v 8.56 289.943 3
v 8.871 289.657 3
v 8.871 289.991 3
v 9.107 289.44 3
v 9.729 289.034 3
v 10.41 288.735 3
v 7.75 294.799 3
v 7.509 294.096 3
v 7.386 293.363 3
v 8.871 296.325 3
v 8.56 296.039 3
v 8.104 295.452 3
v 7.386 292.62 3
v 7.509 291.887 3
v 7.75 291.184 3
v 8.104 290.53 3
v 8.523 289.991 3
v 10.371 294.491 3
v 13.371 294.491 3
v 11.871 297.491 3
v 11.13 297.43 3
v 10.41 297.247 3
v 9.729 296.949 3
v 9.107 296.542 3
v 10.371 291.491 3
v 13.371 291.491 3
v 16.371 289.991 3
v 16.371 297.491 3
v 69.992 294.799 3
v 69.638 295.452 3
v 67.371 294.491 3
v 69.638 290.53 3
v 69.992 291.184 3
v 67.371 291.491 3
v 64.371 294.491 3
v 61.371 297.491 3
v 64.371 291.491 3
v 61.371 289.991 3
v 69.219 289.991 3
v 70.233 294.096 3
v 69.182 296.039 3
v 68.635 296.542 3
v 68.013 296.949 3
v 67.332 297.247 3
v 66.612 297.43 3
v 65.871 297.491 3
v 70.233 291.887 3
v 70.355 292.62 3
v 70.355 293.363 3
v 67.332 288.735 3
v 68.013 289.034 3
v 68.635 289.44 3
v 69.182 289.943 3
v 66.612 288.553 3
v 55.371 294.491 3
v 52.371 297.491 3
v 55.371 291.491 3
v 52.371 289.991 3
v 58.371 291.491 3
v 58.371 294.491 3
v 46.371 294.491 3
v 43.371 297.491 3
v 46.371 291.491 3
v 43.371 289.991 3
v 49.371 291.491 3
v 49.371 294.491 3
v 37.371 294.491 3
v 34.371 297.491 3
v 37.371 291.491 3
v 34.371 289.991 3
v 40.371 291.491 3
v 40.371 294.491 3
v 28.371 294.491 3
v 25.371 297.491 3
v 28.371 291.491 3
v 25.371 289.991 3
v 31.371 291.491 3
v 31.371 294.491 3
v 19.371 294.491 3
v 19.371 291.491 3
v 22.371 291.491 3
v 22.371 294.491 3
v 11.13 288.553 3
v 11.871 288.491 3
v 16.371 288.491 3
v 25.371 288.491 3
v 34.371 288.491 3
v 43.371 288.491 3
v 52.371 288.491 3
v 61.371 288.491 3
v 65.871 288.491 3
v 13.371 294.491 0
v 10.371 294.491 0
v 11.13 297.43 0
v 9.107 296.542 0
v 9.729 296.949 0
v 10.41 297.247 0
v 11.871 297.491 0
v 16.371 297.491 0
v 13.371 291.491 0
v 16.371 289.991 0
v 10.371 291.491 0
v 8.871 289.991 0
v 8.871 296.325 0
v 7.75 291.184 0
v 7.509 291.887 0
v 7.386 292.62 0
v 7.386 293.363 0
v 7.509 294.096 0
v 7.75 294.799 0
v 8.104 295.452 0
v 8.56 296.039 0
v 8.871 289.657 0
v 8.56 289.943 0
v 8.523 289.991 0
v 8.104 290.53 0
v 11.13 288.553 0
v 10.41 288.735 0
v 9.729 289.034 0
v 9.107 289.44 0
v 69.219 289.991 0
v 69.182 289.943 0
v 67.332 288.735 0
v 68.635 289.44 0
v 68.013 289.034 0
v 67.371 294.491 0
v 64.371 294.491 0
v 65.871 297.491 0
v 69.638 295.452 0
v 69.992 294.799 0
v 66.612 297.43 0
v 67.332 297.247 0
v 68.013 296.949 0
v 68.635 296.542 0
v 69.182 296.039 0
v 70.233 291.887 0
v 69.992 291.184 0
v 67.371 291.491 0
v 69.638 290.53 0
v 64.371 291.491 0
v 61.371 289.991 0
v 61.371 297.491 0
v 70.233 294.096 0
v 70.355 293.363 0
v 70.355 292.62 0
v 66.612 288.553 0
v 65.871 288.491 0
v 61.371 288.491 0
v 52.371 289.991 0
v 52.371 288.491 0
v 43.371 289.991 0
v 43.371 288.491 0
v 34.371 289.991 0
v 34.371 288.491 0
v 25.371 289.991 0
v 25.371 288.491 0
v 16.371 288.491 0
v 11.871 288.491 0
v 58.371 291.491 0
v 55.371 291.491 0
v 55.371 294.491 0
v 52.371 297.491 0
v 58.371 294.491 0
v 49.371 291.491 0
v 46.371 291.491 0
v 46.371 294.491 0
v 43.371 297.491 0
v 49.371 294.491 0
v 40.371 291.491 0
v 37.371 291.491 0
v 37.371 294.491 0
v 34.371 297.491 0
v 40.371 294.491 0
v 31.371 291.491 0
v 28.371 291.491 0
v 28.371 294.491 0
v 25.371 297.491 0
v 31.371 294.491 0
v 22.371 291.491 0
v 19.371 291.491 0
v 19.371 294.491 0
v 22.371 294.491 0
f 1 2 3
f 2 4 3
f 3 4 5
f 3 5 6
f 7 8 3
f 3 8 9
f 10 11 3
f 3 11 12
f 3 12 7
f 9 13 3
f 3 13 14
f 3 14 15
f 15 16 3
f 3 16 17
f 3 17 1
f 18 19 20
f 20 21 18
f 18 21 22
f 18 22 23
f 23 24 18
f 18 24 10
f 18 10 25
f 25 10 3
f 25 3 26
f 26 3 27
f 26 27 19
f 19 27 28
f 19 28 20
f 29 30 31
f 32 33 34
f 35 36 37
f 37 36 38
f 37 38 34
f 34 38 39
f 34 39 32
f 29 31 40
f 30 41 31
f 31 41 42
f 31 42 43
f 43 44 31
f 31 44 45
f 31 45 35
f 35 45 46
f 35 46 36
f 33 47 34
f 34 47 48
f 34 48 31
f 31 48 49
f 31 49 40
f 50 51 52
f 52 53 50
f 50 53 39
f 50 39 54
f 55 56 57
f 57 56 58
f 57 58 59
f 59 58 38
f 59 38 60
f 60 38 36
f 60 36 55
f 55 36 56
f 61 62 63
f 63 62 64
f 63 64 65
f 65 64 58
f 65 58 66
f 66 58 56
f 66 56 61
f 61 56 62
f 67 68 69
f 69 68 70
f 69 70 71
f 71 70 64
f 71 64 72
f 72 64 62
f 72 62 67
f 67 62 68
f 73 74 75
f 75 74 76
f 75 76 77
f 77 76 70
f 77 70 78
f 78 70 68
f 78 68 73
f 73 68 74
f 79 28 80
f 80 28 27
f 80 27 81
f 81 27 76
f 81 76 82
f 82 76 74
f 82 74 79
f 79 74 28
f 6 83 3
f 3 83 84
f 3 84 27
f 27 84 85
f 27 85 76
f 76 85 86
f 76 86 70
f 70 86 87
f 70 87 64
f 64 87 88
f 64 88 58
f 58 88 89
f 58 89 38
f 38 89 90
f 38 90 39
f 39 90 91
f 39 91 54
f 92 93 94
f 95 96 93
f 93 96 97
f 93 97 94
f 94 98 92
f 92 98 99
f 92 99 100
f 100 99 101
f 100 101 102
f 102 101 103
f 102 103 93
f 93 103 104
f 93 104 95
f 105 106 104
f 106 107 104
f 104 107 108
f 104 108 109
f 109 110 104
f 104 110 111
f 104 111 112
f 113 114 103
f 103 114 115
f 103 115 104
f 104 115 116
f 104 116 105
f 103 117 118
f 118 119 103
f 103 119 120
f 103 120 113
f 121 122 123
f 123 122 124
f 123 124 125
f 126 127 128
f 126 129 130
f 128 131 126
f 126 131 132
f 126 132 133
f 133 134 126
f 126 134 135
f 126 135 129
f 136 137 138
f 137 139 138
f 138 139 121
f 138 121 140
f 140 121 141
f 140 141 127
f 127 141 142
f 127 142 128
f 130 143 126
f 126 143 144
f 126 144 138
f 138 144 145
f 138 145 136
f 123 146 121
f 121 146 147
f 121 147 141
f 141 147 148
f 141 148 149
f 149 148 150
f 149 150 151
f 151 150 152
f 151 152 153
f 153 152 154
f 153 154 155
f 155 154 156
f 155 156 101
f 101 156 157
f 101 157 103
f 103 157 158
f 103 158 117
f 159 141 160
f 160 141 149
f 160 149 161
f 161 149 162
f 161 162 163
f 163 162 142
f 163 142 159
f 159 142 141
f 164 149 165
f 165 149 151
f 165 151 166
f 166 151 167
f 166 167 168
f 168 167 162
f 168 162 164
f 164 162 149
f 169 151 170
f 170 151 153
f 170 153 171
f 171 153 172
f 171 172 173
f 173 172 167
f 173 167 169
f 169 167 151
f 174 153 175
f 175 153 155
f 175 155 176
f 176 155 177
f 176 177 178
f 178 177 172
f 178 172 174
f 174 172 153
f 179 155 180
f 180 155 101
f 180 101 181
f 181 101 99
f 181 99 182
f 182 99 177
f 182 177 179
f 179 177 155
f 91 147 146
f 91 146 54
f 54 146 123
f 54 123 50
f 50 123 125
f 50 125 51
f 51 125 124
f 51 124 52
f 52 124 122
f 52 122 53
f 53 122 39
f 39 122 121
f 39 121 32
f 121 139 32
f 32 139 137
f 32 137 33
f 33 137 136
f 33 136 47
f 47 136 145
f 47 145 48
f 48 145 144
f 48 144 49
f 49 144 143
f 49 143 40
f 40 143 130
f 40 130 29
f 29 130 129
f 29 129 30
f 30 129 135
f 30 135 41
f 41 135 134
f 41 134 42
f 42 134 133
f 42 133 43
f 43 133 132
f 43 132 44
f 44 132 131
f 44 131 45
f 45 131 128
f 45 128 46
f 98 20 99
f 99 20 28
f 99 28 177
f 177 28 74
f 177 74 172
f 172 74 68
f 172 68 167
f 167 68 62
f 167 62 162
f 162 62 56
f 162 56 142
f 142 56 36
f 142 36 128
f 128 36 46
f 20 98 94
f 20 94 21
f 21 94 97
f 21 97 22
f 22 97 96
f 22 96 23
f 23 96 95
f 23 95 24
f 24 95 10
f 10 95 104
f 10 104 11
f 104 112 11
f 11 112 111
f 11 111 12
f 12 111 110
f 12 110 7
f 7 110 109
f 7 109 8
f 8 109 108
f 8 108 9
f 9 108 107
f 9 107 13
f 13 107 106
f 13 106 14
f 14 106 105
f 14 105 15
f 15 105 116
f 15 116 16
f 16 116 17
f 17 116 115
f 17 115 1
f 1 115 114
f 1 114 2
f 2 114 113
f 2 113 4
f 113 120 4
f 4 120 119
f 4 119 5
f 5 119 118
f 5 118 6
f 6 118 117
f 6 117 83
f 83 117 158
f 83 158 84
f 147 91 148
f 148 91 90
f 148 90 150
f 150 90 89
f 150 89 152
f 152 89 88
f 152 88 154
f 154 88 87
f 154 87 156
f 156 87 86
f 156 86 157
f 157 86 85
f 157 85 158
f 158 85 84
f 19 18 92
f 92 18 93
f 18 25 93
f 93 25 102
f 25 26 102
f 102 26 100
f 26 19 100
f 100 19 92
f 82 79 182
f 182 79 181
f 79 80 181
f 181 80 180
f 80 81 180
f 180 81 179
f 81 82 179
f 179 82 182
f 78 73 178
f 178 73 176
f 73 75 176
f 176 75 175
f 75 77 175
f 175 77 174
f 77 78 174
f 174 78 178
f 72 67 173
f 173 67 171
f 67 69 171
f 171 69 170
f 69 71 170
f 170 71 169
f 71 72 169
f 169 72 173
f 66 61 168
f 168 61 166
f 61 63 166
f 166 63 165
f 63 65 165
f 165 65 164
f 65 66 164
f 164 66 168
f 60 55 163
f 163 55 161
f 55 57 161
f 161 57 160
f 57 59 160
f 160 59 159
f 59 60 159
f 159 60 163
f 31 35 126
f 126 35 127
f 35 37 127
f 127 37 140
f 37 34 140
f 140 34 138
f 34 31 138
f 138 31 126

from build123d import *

# Parameters (mm, degrees)
MODEL_W                 = 3
MODEL_H                 = 3
SALIENTE_EXTRUIR1_DEPTH = 3


with BuildPart() as part:
    # Model → Saliente-Extruir1 (new body)
    with BuildSketch(Plane.XY):
        with BuildLine():
            Line((11.870836217, 297.491184957), (65.870836217, 297.491184957))
            ThreePointArc((65.870836217, 297.491184957), (70.370836217, 292.991184957), (65.870836217, 288.491184957))
            Line((65.870836217, 288.491184957), (11.870836217, 288.491184957))
            ThreePointArc((11.870836217, 288.491184957), (7.370836217, 292.991184957), (11.870836217, 297.491184957))
        make_face()
        with Locations((11.870836217, 292.991184957)):
            Rectangle(MODEL_W, MODEL_H, mode=Mode.SUBTRACT)
        with Locations((20.870836217, 292.991184957)):
            Rectangle(MODEL_W, MODEL_H, mode=Mode.SUBTRACT)
        with Locations((29.870836217, 292.991184957)):
            Rectangle(MODEL_W, MODEL_H, mode=Mode.SUBTRACT)
        with Locations((38.870836217, 292.991184957)):
            Rectangle(MODEL_W, MODEL_H, mode=Mode.SUBTRACT)
        with Locations((47.870836217, 292.991184957)):
            Rectangle(MODEL_W, MODEL_H, mode=Mode.SUBTRACT)
        with Locations((56.870836217, 292.991184957)):
            Rectangle(MODEL_W, MODEL_H, mode=Mode.SUBTRACT)
        with Locations((65.870836217, 292.991184957)):
            Rectangle(MODEL_W, MODEL_H, mode=Mode.SUBTRACT)
    extrude(amount=SALIENTE_EXTRUIR1_DEPTH)


solid = part.part
